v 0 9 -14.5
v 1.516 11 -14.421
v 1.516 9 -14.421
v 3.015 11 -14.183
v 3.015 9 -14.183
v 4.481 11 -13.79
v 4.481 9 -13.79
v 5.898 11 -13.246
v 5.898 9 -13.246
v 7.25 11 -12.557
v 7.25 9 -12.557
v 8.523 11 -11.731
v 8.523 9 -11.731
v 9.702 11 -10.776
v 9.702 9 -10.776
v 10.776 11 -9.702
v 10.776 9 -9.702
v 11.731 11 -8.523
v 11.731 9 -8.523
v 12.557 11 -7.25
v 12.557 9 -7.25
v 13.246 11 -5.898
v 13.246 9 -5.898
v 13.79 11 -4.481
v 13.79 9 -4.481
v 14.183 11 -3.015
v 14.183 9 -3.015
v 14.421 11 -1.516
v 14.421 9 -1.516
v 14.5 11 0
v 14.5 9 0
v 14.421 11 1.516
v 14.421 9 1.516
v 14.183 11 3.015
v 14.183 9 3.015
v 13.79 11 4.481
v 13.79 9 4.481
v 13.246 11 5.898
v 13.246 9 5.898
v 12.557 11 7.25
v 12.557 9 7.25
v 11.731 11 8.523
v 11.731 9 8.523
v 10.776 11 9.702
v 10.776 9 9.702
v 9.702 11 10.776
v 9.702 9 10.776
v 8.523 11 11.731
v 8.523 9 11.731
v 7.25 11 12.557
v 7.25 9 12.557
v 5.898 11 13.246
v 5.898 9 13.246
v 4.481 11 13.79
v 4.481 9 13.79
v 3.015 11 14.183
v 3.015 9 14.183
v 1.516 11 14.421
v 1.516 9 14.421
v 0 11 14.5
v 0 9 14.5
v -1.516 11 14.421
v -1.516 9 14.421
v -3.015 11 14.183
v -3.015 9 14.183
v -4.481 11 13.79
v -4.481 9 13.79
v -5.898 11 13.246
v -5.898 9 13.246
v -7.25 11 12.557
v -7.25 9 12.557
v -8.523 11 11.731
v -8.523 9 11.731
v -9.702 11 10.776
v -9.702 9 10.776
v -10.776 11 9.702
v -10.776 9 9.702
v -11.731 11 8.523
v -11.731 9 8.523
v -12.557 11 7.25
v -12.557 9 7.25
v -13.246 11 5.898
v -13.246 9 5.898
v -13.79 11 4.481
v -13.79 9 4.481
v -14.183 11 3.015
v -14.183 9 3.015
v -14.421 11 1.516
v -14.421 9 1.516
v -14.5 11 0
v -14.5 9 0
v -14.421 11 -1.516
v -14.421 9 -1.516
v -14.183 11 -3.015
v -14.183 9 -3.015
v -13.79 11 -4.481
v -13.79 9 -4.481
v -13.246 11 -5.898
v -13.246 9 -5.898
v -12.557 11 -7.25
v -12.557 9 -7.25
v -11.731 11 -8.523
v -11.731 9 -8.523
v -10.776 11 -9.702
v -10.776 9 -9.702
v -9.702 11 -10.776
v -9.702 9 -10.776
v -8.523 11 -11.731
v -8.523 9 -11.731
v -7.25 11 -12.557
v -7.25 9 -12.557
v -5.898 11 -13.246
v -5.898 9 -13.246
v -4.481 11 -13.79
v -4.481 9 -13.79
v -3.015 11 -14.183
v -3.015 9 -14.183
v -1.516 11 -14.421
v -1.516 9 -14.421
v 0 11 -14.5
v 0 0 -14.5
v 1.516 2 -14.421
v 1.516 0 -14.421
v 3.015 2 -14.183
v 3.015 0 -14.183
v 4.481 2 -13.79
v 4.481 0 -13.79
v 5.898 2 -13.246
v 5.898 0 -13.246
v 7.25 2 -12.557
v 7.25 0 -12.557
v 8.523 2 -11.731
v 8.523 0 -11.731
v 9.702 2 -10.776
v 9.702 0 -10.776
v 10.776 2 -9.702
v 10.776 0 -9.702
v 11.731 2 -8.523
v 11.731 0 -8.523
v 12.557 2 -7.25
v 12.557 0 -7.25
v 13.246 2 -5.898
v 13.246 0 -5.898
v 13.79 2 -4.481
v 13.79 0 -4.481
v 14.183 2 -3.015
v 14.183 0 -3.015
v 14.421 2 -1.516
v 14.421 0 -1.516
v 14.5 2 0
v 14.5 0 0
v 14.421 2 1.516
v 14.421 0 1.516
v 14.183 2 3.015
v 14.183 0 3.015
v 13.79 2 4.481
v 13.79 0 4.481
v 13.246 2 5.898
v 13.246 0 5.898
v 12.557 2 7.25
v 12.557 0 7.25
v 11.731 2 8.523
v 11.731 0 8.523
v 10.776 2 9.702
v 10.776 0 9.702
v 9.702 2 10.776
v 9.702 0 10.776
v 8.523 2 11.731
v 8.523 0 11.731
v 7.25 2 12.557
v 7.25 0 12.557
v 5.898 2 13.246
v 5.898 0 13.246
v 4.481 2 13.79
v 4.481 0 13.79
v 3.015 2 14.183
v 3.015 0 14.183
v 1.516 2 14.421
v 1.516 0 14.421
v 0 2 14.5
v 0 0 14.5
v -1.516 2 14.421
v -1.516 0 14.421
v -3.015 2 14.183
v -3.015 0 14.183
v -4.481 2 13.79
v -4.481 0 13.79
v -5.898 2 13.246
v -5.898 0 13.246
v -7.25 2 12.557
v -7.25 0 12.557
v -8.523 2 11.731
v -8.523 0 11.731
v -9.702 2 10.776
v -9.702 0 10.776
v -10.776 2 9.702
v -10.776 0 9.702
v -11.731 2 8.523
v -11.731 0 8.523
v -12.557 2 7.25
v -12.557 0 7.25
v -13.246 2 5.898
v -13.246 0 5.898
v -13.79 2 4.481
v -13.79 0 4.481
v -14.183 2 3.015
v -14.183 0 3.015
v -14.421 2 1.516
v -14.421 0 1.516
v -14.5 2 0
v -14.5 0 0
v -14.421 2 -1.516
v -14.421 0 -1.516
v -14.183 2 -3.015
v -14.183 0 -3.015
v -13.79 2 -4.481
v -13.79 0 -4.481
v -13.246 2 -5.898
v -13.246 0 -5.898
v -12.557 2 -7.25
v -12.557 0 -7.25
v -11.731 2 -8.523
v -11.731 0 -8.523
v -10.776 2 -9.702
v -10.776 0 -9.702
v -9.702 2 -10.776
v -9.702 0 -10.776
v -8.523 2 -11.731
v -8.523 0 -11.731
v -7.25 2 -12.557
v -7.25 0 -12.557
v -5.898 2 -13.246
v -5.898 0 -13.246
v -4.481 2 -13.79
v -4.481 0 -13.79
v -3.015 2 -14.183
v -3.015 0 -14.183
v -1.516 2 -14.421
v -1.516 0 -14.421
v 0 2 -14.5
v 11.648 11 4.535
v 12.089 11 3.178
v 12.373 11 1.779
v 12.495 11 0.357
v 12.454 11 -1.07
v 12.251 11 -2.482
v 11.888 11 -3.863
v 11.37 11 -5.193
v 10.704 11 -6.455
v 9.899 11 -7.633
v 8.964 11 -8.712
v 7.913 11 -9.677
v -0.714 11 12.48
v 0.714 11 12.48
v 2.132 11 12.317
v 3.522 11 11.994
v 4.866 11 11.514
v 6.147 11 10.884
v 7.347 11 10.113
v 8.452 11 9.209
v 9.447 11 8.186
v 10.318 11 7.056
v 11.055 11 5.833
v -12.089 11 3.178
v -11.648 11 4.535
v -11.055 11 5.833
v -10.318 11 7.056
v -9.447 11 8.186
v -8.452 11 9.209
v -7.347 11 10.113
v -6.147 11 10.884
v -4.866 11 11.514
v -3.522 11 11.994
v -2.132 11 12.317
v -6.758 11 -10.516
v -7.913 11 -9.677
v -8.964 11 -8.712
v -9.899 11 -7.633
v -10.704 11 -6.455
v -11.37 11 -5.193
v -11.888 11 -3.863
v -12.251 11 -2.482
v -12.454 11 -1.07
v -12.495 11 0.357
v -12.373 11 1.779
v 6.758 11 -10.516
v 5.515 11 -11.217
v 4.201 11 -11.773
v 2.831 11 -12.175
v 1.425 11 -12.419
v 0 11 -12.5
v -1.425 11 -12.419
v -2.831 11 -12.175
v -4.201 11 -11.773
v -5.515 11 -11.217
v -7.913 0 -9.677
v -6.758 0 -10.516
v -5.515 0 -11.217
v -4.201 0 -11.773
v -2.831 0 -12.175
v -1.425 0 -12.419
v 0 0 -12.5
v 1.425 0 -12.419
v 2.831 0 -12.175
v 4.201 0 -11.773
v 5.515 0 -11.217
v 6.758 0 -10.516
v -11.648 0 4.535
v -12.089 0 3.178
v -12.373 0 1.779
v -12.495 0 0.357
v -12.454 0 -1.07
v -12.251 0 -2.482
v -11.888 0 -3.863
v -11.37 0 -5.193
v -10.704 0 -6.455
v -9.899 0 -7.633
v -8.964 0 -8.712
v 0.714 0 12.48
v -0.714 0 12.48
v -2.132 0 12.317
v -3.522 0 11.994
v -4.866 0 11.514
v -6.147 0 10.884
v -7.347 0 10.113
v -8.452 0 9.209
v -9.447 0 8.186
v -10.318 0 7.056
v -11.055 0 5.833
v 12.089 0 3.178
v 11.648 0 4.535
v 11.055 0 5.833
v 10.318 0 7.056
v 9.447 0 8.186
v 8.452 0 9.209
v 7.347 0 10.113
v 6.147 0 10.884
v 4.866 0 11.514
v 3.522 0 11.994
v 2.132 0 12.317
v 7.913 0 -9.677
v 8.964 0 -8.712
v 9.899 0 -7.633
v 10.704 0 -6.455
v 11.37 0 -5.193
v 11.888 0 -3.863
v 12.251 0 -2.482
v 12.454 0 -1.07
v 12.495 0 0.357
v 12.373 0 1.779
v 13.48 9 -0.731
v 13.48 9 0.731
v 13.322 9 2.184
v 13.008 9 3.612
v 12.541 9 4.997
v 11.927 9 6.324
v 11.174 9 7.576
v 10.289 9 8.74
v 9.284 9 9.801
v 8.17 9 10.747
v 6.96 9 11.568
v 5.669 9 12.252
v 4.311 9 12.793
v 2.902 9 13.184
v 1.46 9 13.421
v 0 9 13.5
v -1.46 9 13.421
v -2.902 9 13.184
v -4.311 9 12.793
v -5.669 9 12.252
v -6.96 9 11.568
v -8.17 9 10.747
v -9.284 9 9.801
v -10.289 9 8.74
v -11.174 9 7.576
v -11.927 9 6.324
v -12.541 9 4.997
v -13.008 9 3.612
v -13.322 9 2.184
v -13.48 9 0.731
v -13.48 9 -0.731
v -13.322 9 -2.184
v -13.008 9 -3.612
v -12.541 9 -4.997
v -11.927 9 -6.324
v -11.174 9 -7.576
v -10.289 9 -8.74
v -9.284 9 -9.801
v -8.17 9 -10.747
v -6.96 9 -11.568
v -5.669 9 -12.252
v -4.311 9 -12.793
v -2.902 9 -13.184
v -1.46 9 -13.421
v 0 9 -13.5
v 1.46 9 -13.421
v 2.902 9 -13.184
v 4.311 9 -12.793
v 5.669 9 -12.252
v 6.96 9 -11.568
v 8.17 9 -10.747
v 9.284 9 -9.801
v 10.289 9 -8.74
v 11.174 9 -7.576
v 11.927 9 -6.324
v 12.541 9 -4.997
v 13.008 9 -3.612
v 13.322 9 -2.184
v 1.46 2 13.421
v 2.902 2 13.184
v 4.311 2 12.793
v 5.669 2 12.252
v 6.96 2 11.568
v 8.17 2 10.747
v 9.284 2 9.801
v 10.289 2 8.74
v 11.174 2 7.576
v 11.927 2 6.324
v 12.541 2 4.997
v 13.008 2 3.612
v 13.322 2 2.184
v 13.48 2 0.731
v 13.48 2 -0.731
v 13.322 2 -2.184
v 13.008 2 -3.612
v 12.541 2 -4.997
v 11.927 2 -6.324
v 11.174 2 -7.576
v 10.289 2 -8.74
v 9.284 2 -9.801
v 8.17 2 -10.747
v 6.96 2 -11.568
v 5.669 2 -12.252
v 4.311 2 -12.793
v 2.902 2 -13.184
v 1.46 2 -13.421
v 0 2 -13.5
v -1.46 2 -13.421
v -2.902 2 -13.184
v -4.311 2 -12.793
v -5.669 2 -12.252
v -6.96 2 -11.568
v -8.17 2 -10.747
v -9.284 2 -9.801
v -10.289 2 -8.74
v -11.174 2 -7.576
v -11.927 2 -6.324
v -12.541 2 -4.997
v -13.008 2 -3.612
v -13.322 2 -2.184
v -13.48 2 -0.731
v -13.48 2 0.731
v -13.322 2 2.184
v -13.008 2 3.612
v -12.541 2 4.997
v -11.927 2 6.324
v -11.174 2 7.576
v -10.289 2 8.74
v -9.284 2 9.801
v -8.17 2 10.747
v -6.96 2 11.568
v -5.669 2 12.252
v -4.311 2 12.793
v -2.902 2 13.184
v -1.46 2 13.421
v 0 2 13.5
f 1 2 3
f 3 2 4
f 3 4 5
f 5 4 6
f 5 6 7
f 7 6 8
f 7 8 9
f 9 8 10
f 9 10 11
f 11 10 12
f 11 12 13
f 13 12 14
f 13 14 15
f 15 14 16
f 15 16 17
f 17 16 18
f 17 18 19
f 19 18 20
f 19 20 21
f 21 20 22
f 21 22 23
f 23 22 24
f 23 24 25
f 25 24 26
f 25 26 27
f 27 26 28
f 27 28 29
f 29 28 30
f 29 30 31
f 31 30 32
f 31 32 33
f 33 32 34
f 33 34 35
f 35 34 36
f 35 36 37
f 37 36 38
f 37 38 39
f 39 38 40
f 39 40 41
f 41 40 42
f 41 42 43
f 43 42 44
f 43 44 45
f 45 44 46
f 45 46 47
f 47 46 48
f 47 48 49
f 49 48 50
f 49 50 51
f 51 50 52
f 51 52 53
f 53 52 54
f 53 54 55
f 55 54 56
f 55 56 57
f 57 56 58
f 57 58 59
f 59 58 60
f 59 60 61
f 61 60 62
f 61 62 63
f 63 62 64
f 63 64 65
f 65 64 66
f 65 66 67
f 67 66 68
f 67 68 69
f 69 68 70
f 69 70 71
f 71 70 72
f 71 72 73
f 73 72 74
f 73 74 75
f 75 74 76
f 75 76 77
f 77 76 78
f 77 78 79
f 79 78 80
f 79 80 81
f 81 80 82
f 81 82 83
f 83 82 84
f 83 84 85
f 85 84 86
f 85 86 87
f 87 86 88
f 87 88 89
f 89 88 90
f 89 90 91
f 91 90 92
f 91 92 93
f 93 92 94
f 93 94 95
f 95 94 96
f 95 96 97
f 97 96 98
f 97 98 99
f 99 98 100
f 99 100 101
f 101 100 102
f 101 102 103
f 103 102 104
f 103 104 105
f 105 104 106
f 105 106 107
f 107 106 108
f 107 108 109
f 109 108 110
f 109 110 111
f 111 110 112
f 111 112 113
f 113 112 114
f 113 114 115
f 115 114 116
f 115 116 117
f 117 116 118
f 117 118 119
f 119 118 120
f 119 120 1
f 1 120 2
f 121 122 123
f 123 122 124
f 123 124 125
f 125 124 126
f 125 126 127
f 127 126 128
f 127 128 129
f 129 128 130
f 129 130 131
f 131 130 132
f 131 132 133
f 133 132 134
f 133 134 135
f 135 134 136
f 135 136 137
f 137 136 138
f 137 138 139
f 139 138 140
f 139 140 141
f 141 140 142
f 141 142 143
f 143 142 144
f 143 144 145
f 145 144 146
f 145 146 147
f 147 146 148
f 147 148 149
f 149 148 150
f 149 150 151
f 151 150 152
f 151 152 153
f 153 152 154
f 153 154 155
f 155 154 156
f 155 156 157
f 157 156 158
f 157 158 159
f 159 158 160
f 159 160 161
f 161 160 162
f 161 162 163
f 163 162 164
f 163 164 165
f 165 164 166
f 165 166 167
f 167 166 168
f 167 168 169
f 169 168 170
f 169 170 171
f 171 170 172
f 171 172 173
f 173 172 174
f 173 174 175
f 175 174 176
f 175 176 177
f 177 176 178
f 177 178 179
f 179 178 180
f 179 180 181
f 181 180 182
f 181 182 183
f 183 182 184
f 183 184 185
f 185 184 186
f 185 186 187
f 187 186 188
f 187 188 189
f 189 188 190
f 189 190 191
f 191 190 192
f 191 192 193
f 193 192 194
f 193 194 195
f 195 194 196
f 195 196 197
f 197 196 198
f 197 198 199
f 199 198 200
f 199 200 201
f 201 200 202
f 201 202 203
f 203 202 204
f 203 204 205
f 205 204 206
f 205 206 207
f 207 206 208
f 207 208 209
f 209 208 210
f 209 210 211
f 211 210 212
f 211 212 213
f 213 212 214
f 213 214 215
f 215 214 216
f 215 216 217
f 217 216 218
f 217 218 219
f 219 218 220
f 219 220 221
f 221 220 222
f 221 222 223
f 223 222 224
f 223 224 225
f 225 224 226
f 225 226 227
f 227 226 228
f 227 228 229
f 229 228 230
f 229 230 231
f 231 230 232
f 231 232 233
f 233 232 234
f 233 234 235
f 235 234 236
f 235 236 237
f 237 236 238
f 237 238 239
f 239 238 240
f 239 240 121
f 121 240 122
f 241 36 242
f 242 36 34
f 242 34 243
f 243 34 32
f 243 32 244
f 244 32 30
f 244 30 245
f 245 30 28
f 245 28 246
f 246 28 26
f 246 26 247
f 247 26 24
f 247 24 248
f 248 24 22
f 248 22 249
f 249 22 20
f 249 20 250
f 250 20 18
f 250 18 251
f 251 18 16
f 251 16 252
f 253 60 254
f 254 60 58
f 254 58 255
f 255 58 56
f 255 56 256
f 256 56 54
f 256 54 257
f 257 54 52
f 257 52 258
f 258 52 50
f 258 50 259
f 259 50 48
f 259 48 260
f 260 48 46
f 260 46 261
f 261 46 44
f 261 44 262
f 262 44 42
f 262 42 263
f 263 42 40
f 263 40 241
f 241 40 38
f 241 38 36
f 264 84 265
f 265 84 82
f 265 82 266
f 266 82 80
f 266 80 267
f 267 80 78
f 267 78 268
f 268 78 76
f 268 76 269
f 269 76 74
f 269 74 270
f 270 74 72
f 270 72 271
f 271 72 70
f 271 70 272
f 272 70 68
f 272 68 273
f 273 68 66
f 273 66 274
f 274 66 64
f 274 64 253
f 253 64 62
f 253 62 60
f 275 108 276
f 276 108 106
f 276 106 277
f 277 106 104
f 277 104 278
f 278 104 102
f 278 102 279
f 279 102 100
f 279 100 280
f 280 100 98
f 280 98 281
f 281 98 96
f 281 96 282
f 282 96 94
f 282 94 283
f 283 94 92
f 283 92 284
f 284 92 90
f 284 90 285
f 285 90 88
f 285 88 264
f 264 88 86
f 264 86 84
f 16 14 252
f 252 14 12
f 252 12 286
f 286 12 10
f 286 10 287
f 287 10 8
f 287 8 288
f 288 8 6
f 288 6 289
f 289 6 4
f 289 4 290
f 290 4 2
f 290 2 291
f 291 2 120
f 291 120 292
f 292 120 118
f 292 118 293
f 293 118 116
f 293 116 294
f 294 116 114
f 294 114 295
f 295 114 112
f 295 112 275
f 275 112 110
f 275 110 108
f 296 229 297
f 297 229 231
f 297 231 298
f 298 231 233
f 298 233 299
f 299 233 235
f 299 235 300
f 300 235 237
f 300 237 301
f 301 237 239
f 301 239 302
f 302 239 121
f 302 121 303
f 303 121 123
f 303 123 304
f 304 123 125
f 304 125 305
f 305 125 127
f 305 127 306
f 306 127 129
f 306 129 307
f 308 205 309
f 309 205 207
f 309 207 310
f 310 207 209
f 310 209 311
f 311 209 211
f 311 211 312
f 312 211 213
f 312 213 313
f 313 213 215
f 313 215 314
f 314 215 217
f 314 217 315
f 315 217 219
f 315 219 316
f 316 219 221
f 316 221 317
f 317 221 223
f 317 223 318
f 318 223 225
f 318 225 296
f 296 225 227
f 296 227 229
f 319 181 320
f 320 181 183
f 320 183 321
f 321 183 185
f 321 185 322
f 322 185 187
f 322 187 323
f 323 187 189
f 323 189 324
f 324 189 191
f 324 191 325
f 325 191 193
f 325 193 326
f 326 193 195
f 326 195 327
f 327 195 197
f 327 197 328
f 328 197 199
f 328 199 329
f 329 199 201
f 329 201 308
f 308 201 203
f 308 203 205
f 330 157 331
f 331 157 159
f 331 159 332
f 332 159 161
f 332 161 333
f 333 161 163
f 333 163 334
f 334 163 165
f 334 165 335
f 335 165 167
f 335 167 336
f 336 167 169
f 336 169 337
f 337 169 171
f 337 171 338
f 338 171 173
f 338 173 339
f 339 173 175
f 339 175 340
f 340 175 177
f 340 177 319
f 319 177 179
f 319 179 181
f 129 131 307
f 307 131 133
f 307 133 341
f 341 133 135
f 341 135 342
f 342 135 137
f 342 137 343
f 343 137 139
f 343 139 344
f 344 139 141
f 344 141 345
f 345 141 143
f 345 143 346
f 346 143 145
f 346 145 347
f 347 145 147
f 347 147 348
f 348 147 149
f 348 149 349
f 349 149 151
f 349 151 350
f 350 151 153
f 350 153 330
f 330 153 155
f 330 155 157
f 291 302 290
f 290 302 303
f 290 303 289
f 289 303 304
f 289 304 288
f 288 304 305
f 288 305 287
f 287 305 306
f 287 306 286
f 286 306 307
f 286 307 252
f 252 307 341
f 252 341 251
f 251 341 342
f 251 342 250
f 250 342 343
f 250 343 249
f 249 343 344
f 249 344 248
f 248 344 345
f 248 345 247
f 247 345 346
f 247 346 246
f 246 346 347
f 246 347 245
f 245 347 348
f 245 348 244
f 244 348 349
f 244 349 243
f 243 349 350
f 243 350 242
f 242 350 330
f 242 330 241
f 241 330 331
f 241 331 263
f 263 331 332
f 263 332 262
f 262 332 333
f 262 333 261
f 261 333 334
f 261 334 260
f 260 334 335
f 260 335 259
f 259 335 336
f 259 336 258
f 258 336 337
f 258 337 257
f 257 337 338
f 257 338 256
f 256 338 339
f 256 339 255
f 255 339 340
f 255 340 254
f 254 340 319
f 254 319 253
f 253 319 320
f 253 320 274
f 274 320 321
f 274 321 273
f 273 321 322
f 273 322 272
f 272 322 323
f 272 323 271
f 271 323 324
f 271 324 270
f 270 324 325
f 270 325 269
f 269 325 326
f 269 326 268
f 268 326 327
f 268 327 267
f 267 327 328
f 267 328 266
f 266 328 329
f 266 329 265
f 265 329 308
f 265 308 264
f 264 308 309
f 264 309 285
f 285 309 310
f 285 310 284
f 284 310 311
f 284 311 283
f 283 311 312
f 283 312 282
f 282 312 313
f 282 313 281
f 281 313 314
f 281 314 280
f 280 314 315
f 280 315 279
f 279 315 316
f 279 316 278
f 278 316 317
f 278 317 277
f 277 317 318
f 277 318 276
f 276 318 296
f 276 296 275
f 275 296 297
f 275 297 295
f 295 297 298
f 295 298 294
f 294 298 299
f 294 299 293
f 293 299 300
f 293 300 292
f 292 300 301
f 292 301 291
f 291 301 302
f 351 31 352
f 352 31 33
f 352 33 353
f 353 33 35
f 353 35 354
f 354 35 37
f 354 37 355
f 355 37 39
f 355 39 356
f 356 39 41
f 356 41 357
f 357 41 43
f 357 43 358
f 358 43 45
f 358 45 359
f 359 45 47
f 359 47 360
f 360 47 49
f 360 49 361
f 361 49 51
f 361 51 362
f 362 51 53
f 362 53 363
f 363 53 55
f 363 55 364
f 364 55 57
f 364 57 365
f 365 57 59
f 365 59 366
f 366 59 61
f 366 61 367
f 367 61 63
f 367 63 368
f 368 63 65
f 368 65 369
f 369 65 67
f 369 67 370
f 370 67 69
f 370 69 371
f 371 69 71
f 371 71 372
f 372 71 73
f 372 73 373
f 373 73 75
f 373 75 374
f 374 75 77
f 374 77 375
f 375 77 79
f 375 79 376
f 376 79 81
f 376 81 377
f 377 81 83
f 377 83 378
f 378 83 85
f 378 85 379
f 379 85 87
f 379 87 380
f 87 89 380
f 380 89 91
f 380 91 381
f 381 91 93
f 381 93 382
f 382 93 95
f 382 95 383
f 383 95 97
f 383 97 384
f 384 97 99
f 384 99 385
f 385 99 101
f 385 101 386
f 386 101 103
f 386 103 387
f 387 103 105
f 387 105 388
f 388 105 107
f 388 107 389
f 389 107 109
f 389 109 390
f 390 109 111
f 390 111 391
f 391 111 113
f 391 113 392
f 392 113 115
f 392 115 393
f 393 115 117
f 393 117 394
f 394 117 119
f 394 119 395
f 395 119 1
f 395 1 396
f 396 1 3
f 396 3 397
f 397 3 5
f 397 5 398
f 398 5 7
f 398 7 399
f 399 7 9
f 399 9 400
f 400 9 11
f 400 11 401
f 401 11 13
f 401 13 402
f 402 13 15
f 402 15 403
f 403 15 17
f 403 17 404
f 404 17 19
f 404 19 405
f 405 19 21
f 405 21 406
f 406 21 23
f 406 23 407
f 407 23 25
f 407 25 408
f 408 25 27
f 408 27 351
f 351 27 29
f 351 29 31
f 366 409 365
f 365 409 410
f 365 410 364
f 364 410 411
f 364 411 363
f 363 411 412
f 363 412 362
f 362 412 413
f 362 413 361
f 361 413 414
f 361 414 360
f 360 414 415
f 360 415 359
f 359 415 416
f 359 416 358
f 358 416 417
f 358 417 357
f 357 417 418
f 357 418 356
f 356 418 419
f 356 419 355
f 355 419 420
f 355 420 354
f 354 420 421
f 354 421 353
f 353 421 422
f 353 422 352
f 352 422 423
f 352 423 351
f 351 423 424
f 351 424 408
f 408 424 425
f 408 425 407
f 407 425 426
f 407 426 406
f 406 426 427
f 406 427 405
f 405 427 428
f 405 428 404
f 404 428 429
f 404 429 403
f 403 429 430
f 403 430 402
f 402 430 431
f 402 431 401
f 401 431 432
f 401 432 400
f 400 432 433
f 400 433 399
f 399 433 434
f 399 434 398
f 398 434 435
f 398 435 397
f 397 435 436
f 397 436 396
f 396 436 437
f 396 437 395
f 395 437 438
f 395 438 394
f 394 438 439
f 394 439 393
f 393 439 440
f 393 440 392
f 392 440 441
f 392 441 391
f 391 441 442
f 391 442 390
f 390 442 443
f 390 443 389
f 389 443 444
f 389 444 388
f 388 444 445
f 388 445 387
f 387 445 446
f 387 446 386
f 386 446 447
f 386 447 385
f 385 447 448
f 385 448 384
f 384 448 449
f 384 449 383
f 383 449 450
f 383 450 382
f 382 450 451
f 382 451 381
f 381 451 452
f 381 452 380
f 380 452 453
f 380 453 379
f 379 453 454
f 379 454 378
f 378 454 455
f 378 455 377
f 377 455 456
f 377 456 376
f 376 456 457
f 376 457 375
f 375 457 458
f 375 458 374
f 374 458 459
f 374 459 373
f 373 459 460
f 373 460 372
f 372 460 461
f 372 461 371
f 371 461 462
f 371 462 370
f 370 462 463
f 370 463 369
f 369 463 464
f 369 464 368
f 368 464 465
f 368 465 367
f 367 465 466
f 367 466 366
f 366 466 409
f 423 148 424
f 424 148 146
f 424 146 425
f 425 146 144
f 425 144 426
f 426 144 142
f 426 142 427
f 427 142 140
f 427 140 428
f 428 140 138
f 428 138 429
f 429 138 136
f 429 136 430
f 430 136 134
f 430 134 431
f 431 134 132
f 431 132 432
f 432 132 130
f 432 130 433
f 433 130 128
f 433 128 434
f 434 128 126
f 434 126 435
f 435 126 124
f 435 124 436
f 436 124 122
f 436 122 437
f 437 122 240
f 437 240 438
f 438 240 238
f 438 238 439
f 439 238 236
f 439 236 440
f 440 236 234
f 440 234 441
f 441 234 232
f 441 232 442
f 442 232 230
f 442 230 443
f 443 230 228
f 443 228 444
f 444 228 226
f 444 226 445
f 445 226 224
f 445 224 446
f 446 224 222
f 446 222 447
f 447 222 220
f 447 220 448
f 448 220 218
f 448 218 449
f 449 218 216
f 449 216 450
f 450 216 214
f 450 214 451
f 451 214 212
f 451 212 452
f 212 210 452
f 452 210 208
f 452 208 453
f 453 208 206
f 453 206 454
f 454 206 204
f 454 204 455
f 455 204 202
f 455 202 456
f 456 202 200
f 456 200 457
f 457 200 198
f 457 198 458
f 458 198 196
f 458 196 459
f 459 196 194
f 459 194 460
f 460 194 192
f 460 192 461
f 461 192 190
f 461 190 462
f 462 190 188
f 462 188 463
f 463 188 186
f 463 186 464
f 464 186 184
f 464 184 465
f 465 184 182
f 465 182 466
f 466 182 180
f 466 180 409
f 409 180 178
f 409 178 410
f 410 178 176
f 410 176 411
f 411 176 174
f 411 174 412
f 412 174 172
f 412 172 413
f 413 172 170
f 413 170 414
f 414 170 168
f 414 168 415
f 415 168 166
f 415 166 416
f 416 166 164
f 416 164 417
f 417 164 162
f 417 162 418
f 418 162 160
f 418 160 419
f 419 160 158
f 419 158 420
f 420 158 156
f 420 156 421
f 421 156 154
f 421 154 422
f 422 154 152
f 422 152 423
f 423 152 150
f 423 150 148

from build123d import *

# Parameters (mm, degrees)
SKETCH1_R           = 14.5
BOSS_EXTRUDE1_DEPTH = 11
SKETCH2_R           = 12.5
CUT_EXTRUDE1_DEPTH  = 24.270152556


with BuildPart() as part:
    # Sketch1 → Boss-Extrude1 (new body)
    with BuildSketch(Plane(origin=(0, 0, 0), x_dir=(1, 0, 0), z_dir=(0, 1, 0))):
        with Locations(Location((0, 0, 0), (0, 0, 270))):
            Circle(SKETCH1_R)
    extrude(amount=BOSS_EXTRUDE1_DEPTH)

    # Sketch2 → Cut-Extrude1 (cut, through all)
    with BuildSketch(Plane.XZ):
        with Locations(Location((0, 0, 0), (0, 0, 270))):
            Circle(SKETCH2_R)
    extrude(amount=-CUT_EXTRUDE1_DEPTH, mode=Mode.SUBTRACT)

    # Sketch3 → Cut-Revolve2 (revolve, cut)
    with BuildSketch(Plane(origin=(0, 0, 0), x_dir=(0, 0, -1), z_dir=(1, 0, 0))):
        Polygon((-14.5, 11), (-14.5, 9), (-13.5, 9), (-13.5, 2), (-14.5, 2), (-14.5, 0), (-16.729305882, 5.995742764), align=None)
    revolve(axis=Axis((0, 11.640939065, 0), (0, -1, 0)), mode=Mode.SUBTRACT)


solid = part.part
